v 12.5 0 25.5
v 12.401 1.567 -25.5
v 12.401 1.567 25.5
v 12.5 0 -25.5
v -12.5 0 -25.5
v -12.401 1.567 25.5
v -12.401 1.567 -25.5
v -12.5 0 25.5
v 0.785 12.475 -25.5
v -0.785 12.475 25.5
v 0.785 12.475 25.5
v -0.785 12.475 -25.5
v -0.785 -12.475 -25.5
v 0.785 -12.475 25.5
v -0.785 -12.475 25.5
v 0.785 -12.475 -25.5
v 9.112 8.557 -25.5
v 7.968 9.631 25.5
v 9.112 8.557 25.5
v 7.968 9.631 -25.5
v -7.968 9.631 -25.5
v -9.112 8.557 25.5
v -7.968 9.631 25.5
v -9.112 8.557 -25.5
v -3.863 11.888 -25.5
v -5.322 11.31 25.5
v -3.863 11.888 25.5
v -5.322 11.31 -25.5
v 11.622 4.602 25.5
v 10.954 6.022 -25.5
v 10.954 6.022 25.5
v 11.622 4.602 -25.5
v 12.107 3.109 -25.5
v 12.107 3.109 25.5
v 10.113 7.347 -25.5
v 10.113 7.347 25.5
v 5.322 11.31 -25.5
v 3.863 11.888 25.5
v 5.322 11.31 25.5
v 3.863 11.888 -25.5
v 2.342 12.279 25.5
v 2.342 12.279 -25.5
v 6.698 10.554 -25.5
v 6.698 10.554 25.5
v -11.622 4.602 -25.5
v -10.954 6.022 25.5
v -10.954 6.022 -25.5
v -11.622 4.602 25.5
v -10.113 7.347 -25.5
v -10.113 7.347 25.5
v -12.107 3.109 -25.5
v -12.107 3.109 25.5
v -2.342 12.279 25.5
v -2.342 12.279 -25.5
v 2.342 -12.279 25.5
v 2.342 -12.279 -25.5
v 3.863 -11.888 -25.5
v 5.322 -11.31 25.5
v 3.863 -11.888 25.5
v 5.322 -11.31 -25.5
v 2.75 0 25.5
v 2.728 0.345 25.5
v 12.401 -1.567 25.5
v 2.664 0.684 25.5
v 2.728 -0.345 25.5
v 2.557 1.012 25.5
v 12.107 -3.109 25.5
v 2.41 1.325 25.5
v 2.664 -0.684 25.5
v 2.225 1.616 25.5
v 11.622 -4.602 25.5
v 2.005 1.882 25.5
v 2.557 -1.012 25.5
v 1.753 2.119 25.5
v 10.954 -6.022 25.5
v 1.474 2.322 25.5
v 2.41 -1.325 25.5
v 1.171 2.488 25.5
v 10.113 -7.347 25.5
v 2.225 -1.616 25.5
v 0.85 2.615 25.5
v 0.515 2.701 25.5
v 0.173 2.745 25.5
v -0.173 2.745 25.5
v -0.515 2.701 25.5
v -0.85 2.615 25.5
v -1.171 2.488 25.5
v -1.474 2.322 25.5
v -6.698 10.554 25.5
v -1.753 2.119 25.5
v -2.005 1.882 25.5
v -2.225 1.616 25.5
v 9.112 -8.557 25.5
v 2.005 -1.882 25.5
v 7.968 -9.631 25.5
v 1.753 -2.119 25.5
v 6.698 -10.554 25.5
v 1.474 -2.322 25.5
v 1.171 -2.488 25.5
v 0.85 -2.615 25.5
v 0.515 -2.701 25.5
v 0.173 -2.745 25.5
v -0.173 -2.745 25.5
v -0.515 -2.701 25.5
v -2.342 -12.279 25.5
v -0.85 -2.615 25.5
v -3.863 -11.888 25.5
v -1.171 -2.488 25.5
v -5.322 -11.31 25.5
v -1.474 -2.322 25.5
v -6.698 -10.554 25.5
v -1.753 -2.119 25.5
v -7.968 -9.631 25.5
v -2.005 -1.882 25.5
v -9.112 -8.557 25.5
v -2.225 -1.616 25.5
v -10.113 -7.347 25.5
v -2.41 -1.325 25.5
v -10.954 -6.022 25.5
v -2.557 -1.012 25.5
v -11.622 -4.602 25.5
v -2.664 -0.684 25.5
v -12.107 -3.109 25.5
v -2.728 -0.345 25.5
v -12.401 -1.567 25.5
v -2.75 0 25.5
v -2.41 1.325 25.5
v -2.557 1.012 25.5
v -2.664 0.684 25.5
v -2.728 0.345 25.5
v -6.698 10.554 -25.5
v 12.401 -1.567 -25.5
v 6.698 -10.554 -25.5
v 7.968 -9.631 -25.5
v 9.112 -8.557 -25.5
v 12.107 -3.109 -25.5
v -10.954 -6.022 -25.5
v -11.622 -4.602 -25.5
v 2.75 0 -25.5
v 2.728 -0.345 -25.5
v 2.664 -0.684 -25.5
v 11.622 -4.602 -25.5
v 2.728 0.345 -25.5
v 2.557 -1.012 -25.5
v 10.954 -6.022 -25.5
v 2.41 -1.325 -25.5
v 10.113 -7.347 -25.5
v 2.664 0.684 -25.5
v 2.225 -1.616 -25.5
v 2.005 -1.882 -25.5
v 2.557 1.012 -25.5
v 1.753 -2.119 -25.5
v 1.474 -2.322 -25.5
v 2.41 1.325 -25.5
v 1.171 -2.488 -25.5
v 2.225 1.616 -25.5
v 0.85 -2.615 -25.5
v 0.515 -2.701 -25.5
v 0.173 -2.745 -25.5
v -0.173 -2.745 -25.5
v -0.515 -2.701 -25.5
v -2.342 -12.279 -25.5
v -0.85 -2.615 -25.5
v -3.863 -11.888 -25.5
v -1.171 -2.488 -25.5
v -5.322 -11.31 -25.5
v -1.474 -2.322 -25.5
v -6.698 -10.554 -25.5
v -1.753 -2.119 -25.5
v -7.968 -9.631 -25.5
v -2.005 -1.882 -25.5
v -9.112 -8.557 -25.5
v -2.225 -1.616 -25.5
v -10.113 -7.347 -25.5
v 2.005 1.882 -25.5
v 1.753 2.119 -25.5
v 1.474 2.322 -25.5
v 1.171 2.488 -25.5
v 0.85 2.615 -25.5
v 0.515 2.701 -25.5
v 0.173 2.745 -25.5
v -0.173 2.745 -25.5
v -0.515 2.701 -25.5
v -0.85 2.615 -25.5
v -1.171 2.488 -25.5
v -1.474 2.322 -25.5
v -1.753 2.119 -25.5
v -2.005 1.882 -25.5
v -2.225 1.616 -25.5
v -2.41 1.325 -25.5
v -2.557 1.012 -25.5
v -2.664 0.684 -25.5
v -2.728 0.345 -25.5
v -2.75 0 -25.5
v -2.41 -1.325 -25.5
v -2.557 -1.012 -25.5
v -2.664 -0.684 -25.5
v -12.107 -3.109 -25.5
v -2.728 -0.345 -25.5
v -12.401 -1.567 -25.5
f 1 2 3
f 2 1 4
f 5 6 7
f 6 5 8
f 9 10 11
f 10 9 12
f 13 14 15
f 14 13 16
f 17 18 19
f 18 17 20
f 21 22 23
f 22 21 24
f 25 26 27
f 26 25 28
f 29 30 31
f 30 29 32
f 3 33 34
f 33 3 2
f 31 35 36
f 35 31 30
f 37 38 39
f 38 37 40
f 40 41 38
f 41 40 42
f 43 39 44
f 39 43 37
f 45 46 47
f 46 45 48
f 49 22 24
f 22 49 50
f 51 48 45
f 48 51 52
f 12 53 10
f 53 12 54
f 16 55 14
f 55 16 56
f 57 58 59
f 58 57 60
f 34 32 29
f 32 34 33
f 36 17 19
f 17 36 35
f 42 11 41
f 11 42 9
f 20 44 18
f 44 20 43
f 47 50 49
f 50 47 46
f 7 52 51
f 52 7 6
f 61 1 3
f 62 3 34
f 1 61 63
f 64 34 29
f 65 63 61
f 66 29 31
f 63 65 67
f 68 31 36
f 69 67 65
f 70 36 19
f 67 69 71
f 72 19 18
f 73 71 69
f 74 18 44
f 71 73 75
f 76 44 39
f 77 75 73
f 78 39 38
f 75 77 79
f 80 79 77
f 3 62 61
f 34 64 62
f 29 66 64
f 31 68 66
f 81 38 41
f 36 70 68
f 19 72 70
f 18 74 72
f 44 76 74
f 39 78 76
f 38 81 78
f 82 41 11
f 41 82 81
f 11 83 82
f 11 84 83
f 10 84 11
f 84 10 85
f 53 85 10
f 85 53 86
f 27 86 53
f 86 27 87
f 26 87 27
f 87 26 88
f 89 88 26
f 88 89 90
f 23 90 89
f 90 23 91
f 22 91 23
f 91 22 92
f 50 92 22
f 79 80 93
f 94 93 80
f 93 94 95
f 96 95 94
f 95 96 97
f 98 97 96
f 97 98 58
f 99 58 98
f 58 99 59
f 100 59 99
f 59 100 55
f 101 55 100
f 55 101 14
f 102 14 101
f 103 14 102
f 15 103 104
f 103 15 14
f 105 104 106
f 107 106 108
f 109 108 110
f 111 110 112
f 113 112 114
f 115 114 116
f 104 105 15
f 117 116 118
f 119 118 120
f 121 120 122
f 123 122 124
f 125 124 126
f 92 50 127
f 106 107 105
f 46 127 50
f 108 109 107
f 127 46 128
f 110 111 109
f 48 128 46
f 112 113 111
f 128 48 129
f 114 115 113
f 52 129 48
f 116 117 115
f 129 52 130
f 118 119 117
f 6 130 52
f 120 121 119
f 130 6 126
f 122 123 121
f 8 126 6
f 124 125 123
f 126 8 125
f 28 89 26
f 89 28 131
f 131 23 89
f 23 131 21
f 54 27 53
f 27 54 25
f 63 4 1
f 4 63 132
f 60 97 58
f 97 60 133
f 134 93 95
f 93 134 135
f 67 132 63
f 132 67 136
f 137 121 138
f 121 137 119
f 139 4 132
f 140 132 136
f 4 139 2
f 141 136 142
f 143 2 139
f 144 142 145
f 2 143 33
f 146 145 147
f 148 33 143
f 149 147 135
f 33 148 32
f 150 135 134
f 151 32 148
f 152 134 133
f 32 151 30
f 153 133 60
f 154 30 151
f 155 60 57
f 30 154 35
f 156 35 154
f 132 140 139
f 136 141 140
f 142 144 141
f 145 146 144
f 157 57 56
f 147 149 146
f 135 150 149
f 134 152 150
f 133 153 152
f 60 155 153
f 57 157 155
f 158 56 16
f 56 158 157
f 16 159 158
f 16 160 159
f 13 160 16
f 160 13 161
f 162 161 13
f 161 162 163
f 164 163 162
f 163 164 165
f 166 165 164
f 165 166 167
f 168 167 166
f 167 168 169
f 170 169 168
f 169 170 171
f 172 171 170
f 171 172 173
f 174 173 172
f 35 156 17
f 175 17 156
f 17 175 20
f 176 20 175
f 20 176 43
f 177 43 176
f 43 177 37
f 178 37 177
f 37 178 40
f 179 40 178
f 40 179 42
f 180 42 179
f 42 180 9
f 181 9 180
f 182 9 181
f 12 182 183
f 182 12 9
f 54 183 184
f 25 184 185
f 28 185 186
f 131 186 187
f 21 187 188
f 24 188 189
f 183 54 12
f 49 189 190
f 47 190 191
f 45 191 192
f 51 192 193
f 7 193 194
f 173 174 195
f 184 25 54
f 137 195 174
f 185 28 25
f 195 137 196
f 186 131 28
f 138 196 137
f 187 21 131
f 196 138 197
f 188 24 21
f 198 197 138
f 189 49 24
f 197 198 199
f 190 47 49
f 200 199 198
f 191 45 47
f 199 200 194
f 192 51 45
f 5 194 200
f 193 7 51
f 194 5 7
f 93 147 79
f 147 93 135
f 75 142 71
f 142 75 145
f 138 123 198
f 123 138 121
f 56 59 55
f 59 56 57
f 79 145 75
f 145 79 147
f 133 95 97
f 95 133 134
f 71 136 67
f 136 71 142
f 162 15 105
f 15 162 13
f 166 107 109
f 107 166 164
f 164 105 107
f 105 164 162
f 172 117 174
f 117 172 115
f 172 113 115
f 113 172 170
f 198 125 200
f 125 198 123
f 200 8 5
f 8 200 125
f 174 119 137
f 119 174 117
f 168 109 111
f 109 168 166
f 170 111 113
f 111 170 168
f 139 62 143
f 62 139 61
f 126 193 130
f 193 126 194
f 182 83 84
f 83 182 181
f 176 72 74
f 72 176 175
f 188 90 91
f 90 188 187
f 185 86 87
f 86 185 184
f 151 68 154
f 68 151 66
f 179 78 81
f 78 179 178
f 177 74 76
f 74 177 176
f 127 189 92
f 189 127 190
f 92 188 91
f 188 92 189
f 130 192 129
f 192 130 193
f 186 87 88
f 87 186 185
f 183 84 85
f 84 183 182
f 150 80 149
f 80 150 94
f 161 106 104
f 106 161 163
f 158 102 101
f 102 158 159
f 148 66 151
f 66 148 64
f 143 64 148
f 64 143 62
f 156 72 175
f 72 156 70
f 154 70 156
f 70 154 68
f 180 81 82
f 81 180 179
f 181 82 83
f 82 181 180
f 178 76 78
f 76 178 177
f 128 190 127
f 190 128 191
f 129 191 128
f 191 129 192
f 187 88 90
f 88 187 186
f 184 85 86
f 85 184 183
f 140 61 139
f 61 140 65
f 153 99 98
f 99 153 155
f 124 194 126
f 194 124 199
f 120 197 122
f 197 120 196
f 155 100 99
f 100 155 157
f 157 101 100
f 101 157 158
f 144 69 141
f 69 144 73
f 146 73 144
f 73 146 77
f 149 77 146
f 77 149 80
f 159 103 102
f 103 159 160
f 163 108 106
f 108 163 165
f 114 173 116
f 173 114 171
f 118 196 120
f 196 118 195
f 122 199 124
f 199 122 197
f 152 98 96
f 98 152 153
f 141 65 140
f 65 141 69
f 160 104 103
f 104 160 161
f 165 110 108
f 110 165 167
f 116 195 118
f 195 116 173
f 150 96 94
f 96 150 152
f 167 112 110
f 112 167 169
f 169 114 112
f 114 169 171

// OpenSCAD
$fn = 50;


difference() {
	union() {
		translate(v = [0, 0, -25.5000000000]) {
			cylinder(h = 51, r = 12.5000000000);
		}
	}
	union() {
		translate(v = [0, 0, -100.0000000000]) {
			cylinder(h = 200, r = 2.7500000000);
		}
	}
}
